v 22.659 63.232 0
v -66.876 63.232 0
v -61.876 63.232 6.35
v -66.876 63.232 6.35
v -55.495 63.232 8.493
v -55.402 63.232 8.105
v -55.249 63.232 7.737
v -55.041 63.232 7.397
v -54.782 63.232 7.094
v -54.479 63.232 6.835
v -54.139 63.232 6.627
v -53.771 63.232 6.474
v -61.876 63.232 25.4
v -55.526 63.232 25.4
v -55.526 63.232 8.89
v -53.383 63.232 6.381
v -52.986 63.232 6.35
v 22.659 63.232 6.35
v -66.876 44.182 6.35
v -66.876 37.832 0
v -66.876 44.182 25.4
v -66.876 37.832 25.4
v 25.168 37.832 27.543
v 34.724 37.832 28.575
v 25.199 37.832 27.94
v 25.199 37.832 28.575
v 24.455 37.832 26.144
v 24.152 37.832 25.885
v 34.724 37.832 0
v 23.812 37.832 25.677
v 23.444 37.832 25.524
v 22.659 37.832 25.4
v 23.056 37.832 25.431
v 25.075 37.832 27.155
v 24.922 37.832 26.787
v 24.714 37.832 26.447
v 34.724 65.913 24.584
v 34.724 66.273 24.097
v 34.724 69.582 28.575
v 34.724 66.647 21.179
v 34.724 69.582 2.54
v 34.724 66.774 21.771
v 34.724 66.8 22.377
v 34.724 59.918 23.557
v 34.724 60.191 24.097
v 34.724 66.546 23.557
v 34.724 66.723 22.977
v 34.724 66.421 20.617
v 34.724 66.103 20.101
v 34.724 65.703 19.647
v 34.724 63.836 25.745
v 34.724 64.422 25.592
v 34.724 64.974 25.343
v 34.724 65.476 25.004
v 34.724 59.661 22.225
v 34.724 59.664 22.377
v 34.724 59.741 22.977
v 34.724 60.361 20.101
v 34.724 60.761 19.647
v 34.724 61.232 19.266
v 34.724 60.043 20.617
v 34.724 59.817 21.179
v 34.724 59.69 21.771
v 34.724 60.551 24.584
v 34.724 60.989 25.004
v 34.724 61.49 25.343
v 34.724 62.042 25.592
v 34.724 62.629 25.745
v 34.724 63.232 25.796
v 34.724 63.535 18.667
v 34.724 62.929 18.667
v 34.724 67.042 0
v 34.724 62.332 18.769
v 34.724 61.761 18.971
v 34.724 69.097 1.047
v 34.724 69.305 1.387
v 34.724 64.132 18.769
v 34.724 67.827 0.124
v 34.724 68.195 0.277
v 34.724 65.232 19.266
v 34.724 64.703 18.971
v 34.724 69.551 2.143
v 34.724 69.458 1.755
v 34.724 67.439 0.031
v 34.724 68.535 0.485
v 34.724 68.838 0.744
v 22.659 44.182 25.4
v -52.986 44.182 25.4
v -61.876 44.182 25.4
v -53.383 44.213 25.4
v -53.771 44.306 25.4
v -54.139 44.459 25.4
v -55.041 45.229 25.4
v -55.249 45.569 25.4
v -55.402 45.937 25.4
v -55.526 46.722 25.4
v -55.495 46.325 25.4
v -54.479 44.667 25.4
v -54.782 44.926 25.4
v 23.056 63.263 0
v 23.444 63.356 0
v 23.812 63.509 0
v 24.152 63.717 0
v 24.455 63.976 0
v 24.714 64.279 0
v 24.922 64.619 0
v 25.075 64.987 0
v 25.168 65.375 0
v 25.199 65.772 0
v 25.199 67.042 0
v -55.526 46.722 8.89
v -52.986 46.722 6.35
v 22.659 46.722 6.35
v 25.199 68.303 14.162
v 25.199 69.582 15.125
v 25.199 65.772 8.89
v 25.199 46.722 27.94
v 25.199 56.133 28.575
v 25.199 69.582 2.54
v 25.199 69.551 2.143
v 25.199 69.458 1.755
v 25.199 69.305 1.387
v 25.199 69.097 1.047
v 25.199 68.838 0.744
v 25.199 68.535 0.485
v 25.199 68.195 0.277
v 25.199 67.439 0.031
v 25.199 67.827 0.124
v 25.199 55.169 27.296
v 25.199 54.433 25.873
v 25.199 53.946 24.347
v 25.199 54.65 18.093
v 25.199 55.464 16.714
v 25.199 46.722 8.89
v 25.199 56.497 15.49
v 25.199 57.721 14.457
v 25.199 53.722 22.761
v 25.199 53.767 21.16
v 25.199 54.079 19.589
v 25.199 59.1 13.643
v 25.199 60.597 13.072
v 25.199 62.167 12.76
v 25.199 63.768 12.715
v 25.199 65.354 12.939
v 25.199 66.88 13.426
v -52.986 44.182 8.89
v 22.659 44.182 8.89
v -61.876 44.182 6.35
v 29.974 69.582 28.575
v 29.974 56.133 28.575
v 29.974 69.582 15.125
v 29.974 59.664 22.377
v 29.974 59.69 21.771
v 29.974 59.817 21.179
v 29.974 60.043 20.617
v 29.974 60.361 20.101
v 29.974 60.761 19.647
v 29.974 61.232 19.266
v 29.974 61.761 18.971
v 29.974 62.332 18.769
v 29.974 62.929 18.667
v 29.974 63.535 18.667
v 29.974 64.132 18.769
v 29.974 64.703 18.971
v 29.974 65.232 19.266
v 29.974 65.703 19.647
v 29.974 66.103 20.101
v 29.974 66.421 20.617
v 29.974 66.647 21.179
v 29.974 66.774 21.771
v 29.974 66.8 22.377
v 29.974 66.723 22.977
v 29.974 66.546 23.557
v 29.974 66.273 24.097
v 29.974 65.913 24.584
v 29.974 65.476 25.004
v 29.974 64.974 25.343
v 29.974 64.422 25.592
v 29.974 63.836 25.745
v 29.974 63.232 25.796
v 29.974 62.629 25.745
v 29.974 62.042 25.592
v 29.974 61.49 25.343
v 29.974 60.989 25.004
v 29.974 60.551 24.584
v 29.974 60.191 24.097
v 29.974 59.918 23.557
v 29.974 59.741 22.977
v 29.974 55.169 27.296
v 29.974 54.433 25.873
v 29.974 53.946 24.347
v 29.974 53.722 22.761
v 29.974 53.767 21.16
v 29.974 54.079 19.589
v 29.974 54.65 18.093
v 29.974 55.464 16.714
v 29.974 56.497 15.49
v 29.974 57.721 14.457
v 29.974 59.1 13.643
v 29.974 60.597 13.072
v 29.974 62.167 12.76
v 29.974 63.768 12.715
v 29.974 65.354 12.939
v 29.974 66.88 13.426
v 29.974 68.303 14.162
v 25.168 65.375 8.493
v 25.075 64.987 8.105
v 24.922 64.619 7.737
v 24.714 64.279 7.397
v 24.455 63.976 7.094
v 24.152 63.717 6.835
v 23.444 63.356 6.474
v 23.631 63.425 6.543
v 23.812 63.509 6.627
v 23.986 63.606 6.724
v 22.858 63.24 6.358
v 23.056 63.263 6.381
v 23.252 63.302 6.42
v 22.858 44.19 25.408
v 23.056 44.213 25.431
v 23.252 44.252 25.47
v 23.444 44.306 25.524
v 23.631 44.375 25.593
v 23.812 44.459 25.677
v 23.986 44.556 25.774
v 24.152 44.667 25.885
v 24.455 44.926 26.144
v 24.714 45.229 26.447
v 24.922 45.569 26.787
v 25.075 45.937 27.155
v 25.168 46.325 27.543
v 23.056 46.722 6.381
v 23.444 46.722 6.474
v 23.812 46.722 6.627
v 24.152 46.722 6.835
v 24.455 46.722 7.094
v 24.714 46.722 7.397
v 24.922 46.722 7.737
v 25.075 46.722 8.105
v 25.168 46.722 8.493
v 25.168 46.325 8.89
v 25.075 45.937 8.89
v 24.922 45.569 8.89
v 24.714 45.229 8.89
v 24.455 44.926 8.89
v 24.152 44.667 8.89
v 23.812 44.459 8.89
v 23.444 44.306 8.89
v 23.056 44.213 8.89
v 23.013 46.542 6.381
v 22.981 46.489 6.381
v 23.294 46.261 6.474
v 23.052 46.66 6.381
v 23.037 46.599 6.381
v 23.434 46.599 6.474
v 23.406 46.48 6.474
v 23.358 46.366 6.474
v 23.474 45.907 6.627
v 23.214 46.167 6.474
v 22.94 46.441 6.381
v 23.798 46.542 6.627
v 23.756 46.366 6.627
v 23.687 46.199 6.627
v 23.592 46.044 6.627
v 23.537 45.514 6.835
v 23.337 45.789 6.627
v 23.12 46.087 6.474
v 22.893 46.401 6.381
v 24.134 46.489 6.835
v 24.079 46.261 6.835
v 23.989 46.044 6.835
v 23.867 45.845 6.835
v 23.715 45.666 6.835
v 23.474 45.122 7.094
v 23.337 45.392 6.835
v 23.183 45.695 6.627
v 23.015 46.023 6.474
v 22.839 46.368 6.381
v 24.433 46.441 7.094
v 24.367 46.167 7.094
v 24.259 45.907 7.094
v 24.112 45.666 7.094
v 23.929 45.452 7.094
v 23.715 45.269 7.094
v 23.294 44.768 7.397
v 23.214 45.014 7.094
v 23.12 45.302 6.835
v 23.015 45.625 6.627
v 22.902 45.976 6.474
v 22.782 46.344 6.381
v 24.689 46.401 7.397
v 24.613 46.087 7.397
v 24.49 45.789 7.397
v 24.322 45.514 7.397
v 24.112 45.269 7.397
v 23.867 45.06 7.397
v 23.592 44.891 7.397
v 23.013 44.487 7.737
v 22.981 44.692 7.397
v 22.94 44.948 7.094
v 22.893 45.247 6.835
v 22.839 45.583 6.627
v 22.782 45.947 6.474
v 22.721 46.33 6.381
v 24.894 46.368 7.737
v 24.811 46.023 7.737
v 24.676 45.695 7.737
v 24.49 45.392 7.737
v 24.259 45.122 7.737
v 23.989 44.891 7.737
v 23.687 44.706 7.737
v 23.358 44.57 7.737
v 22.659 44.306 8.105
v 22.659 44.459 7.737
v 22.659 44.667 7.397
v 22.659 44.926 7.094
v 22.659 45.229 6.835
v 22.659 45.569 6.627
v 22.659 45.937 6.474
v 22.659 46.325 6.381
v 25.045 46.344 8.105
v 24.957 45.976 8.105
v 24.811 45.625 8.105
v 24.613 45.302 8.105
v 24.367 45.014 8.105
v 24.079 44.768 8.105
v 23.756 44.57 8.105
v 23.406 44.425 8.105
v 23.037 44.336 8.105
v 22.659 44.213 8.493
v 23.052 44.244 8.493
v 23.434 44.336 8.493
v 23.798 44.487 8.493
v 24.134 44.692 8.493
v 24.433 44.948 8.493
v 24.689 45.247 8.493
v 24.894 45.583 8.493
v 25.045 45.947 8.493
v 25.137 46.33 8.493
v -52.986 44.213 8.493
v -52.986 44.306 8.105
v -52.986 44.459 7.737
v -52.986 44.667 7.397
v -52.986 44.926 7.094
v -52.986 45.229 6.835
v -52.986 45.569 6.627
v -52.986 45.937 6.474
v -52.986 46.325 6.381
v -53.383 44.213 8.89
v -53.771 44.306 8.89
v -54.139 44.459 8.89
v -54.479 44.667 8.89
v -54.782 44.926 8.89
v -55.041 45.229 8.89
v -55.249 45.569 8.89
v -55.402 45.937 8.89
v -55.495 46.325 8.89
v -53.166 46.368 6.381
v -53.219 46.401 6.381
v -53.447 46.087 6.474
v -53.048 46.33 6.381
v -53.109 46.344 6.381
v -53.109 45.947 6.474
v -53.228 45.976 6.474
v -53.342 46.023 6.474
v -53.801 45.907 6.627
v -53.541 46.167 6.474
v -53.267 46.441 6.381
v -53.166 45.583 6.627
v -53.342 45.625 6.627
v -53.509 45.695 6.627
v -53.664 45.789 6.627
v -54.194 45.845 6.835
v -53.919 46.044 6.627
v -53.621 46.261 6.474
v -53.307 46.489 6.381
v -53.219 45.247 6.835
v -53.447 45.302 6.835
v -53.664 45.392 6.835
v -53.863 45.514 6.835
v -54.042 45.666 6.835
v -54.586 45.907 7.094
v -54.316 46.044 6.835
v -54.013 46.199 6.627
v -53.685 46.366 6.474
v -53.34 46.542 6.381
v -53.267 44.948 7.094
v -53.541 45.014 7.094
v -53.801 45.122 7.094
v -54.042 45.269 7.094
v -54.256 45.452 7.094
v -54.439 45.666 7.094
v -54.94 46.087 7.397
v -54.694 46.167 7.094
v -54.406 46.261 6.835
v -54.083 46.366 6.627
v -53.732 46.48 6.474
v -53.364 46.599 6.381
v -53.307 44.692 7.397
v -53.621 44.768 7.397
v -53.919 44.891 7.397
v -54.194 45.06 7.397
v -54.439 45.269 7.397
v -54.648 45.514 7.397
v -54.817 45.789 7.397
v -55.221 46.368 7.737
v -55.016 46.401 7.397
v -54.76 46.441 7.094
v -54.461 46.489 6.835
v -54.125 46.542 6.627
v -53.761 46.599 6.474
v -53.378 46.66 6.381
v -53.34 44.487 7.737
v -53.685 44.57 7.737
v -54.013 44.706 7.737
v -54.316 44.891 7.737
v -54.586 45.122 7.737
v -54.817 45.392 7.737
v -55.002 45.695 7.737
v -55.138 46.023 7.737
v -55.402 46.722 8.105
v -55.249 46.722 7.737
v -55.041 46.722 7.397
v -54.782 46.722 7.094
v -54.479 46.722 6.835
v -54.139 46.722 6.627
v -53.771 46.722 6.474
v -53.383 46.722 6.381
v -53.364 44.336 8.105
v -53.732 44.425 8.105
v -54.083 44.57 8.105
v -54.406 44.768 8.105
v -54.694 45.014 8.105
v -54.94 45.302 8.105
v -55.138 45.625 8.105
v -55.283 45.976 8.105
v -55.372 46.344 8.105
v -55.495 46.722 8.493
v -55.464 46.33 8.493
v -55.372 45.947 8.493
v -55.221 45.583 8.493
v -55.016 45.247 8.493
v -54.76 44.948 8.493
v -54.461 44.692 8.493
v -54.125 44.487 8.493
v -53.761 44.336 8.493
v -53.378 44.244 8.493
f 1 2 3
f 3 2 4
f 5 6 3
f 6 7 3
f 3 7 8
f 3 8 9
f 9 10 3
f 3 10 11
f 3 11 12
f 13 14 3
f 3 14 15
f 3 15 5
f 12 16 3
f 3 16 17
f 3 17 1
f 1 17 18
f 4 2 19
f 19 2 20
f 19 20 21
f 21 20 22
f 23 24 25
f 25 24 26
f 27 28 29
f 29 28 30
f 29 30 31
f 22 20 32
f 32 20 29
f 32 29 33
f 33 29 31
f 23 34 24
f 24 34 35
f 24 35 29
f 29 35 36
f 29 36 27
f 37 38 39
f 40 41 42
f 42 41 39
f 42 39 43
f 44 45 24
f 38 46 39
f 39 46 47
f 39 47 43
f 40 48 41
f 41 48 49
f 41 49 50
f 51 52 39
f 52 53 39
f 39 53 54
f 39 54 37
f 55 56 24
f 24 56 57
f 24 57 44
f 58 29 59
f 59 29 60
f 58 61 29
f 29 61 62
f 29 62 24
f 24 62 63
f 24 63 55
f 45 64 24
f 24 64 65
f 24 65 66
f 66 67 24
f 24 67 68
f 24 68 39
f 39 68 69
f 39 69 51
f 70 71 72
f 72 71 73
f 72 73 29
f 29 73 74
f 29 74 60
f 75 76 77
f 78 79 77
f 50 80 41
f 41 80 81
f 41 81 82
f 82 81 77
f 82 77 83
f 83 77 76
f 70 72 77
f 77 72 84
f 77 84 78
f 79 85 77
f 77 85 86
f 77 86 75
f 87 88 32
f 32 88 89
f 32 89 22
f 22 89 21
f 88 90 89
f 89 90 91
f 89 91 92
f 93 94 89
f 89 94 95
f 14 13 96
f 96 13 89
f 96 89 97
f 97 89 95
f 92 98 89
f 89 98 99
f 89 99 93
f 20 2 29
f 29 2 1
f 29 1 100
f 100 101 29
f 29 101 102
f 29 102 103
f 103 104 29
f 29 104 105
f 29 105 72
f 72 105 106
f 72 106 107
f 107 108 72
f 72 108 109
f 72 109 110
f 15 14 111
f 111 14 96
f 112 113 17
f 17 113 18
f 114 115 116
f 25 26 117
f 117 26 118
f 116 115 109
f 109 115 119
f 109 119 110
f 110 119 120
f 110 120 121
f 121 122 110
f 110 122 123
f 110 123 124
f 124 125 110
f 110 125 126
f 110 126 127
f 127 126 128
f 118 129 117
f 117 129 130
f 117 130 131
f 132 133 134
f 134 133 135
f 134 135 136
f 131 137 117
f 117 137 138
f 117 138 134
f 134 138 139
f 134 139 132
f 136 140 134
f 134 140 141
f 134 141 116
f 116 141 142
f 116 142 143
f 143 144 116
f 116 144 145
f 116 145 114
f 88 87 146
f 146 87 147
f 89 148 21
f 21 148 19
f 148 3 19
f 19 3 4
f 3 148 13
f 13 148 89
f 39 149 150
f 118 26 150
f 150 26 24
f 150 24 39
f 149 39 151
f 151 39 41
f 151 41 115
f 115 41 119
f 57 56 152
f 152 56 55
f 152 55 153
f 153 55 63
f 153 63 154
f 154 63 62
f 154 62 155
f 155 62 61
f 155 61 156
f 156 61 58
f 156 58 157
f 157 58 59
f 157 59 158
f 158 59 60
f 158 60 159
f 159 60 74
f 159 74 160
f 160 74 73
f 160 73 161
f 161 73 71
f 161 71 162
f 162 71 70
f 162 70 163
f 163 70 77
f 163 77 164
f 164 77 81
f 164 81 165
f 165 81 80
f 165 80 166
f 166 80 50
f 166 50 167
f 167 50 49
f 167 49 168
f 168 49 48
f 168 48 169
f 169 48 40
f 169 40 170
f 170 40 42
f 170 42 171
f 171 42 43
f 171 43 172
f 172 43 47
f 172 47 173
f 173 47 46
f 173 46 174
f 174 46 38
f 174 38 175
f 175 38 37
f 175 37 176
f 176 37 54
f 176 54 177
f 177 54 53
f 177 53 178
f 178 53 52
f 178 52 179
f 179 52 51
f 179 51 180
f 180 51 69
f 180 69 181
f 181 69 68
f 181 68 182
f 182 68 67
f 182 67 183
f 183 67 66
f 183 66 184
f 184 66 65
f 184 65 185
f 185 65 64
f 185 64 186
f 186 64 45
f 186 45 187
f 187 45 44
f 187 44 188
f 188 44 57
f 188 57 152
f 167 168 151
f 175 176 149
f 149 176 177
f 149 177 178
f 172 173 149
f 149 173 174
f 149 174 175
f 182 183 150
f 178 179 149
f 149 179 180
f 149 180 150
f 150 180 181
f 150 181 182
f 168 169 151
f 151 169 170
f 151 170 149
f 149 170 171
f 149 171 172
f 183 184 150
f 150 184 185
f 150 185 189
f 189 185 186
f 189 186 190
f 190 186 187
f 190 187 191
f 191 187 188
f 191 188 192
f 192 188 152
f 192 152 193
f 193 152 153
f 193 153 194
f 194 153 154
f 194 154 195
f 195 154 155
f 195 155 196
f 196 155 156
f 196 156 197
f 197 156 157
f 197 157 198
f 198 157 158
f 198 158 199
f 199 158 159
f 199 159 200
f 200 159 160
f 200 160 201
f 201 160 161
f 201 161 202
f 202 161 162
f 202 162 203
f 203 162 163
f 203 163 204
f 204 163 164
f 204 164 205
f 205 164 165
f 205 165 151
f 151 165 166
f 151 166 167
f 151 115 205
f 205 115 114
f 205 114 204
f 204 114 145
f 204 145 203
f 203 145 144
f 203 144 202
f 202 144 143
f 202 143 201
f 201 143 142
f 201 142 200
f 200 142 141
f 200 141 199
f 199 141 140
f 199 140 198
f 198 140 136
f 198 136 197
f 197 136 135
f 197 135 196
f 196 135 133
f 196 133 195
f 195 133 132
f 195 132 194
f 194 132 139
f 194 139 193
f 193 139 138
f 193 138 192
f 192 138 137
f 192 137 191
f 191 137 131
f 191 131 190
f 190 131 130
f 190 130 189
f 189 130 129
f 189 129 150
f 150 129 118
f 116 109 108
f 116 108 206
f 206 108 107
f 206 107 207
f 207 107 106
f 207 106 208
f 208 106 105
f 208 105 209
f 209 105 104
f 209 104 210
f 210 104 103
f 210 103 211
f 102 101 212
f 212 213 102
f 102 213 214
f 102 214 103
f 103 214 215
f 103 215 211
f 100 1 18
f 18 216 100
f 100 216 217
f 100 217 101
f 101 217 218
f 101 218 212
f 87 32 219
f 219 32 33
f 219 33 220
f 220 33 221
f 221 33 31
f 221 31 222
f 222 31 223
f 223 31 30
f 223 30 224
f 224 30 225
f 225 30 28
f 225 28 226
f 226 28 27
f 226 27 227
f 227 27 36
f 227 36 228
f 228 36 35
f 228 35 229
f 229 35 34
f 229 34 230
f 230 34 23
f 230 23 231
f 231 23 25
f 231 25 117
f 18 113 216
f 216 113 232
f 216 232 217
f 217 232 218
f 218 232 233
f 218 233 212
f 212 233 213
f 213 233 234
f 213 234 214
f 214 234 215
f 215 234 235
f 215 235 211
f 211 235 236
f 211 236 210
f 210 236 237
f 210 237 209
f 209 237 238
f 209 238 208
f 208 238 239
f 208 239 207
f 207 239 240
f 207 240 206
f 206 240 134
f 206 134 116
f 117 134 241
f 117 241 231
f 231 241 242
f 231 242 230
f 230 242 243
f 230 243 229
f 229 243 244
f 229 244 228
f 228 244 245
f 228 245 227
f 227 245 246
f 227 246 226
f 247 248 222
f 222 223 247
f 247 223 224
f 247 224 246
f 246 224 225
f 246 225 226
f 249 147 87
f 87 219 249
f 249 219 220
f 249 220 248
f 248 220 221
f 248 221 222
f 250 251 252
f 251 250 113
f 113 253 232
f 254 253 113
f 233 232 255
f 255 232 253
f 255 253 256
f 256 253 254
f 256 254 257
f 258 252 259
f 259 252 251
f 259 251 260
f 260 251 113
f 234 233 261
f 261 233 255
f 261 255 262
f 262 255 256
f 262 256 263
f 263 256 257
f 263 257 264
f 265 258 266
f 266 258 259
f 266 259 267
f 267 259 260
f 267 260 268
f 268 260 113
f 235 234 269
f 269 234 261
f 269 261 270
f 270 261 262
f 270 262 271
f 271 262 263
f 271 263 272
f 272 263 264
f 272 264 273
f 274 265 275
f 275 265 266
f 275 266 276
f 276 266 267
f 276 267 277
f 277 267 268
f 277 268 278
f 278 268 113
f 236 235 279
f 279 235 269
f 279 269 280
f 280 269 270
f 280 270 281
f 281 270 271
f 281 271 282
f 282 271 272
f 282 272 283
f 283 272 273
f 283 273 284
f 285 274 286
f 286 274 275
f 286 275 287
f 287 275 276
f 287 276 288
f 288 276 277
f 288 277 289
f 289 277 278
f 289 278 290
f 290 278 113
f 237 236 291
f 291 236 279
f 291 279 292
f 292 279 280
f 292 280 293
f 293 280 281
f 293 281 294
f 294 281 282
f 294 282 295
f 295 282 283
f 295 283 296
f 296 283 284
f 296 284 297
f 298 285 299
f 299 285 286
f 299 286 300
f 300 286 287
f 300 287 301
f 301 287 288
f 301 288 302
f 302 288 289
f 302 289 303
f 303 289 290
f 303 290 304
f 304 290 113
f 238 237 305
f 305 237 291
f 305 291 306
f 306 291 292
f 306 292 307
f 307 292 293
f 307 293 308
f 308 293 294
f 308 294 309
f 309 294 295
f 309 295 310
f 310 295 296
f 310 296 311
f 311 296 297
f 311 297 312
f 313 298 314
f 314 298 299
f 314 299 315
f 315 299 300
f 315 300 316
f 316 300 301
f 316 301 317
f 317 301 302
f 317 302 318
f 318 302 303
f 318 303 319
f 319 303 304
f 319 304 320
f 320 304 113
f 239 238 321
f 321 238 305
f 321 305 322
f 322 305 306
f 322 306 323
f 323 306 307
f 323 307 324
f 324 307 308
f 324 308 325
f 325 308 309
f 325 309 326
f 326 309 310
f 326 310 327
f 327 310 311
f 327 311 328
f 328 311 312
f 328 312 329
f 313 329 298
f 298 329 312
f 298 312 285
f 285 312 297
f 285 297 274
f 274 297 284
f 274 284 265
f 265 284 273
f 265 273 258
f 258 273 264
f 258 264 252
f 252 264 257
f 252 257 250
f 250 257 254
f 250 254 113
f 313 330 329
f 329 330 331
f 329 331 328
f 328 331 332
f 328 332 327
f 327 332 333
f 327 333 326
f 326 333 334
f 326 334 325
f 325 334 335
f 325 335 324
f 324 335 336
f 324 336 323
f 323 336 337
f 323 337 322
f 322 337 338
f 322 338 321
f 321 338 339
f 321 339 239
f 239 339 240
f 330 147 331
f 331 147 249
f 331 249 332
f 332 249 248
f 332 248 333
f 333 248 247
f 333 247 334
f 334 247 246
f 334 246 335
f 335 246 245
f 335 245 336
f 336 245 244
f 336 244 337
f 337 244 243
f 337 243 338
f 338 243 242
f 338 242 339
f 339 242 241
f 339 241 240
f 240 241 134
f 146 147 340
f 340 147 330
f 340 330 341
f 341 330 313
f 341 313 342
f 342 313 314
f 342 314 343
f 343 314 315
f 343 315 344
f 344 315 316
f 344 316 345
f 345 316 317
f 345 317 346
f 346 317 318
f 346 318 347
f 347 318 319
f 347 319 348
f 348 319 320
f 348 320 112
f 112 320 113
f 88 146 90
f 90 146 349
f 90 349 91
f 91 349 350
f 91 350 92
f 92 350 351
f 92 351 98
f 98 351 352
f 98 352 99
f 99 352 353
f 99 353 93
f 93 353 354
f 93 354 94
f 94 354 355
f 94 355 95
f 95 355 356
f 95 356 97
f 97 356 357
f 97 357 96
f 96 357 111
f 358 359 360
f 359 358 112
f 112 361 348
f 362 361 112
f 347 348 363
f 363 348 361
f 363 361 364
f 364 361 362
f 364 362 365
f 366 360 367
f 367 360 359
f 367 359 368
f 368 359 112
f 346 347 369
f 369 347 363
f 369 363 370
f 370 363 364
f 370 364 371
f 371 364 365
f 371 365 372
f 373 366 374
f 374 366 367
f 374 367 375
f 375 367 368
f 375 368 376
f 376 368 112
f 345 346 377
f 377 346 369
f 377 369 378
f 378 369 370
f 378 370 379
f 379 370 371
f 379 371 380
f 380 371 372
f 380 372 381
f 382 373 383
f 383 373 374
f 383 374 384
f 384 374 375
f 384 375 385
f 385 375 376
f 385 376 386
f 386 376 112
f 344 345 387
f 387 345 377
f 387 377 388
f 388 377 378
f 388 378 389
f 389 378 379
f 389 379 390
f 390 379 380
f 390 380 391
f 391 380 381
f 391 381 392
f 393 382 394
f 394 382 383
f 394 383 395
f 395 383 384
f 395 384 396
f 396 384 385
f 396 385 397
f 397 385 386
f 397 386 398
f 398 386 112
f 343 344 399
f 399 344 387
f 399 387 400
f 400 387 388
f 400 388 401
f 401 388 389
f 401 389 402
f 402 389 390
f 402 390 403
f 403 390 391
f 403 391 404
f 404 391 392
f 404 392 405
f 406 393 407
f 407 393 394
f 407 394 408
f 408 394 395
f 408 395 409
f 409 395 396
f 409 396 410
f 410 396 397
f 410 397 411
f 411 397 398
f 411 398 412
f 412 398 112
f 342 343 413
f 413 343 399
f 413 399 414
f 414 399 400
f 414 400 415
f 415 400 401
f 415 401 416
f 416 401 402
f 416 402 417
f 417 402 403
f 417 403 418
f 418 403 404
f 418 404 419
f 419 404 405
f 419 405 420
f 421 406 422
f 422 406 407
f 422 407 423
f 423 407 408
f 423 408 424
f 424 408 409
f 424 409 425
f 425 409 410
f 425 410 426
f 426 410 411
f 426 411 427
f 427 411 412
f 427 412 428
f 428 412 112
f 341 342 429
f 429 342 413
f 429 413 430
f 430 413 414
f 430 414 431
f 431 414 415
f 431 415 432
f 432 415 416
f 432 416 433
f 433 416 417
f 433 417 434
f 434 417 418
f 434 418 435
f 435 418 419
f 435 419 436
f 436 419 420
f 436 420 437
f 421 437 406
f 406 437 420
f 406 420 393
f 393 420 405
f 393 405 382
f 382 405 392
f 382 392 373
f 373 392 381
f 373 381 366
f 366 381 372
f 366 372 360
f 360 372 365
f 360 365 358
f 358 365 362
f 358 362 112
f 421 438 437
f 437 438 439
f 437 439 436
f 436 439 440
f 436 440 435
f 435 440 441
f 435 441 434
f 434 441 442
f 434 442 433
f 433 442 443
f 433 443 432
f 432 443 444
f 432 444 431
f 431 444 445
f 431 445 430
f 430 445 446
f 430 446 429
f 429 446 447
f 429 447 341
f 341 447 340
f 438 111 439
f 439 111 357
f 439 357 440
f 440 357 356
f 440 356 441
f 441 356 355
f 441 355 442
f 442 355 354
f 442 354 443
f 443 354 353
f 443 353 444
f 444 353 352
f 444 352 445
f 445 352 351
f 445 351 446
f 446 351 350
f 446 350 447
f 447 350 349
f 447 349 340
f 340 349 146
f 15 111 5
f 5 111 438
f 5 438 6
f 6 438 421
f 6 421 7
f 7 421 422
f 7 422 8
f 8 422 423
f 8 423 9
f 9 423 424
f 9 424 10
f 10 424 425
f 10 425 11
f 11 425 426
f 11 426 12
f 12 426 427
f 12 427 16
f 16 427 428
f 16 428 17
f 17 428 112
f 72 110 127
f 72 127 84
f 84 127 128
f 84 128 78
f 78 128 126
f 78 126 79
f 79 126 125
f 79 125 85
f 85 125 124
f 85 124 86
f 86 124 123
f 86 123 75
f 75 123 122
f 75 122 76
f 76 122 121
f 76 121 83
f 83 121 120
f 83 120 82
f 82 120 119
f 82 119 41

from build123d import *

# Parameters (mm, degrees)
SKETCH1_W                                = 101.6
SKETCH1_H                                = 25.4
BOSS_EXTRUDE1_DEPTH                      = 25.4
SKETCH2_W                                = 80.725
SKETCH2_H                                = 19.05
CUT_EXTRUDE1_DEPTH                       = 19.05
SKETCH3_W                                = 19.05
SKETCH3_H                                = 19.05
CUT_EXTRUDE2_DEPTH                       = 5
SKETCH4_W                                = 9.525
SKETCH4_H                                = 25.4
BOSS_EXTRUDE2_DEPTH                      = 3.175
SKETCH8_W                                = 9.525
SKETCH8_H                                = 28.575
BOSS_EXTRUDE3_DEPTH                      = 6.35
CBORE_FOR_1_4_HEX_HEAD_BOLT1_D           = 7.14248
CBORE_FOR_1_4_HEX_HEAD_BOLT1_DEPTH       = 9.906
CBORE_FOR_1_4_HEX_HEAD_BOLT1_CBORE_D     = 19.05
CBORE_FOR_1_4_HEX_HEAD_BOLT1_CBORE_DEPTH = 4.7752
CBORE_FOR_1_4_HEX_HEAD_BOLT1_TIP         = 2.145817477
FILLET1_R                                = 2.54


with BuildPart() as part:
    # Sketch1 → Boss-Extrude1 (new body)
    with BuildSketch(Plane.XY):
        with Locations((-16.075949367, 50.532067511)):
            Rectangle(SKETCH1_W, SKETCH1_H)
    extrude(amount=BOSS_EXTRUDE1_DEPTH)

    # Sketch2 → Cut-Extrude1 (cut)
    with BuildSketch(Plane(origin=(0, 63.232067511, 0), x_dir=(1, 0, 0), z_dir=(0, 1, 0))):
        with Locations((-15.163449367, -15.875)):
            Rectangle(SKETCH2_W, SKETCH2_H)
    extrude(amount=-CUT_EXTRUDE1_DEPTH, mode=Mode.SUBTRACT)

    # Sketch3 → Cut-Extrude2 (cut)
    with BuildSketch(Plane.ZY.offset(66.875949367)):
        with Locations((15.875, 53.707067511)):
            Rectangle(SKETCH3_W, SKETCH3_H)
    extrude(amount=-CUT_EXTRUDE2_DEPTH, mode=Mode.SUBTRACT)

    # Sketch4 → Boss-Extrude2 (add)
    with BuildSketch(Plane.XY.offset(25.4)):
        with Locations((29.961550633, 50.532067511)):
            Rectangle(SKETCH4_W, SKETCH4_H)
    extrude(amount=BOSS_EXTRUDE2_DEPTH)

    # Sketch8 → Boss-Extrude3 (add)
    with BuildSketch(Plane(origin=(0, 63.232067511, 0), x_dir=(1, 0, 0), z_dir=(0, 1, 0))):
        with Locations((29.961550633, -14.2875)):
            Rectangle(SKETCH8_W, SKETCH8_H)
    extrude(amount=BOSS_EXTRUDE3_DEPTH)

    # CBORE for 1/4 Hex Head Bolt1
    with Locations(Plane.ZY.offset(-25.199050633)):
        with Locations((22.225, 63.232067511)):
            CounterBoreHole(CBORE_FOR_1_4_HEX_HEAD_BOLT1_D / 2, CBORE_FOR_1_4_HEX_HEAD_BOLT1_CBORE_D / 2, CBORE_FOR_1_4_HEX_HEAD_BOLT1_CBORE_DEPTH, depth=CBORE_FOR_1_4_HEX_HEAD_BOLT1_DEPTH)
            with Locations((0, 0, -(CBORE_FOR_1_4_HEX_HEAD_BOLT1_DEPTH + CBORE_FOR_1_4_HEX_HEAD_BOLT1_TIP / 2))):  # 118° drill point
                Cone(0, CBORE_FOR_1_4_HEX_HEAD_BOLT1_D / 2, CBORE_FOR_1_4_HEX_HEAD_BOLT1_TIP, mode=Mode.SUBTRACT)

    # Fillet1
    fillet1_edges = [part.edges().sort_by_distance(p)[0] for p in [
        (-55.525949367, 44.182067511, 15.875),
        (-15.163449367, 44.182067511, 6.35),
        (-55.525949367, 53.707067511, 6.35),
        (25.199050633, 44.182067511, 15.875),
        (25.199050633, 53.707067511, 6.35),
        (25.199050633, 41.007067511, 25.4),
        (25.199050633, 63.232067511, 3.175),
        (29.961550633, 69.582067511, 0),
    ]]
    fillet(fillet1_edges, radius=FILLET1_R)


solid = part.part
